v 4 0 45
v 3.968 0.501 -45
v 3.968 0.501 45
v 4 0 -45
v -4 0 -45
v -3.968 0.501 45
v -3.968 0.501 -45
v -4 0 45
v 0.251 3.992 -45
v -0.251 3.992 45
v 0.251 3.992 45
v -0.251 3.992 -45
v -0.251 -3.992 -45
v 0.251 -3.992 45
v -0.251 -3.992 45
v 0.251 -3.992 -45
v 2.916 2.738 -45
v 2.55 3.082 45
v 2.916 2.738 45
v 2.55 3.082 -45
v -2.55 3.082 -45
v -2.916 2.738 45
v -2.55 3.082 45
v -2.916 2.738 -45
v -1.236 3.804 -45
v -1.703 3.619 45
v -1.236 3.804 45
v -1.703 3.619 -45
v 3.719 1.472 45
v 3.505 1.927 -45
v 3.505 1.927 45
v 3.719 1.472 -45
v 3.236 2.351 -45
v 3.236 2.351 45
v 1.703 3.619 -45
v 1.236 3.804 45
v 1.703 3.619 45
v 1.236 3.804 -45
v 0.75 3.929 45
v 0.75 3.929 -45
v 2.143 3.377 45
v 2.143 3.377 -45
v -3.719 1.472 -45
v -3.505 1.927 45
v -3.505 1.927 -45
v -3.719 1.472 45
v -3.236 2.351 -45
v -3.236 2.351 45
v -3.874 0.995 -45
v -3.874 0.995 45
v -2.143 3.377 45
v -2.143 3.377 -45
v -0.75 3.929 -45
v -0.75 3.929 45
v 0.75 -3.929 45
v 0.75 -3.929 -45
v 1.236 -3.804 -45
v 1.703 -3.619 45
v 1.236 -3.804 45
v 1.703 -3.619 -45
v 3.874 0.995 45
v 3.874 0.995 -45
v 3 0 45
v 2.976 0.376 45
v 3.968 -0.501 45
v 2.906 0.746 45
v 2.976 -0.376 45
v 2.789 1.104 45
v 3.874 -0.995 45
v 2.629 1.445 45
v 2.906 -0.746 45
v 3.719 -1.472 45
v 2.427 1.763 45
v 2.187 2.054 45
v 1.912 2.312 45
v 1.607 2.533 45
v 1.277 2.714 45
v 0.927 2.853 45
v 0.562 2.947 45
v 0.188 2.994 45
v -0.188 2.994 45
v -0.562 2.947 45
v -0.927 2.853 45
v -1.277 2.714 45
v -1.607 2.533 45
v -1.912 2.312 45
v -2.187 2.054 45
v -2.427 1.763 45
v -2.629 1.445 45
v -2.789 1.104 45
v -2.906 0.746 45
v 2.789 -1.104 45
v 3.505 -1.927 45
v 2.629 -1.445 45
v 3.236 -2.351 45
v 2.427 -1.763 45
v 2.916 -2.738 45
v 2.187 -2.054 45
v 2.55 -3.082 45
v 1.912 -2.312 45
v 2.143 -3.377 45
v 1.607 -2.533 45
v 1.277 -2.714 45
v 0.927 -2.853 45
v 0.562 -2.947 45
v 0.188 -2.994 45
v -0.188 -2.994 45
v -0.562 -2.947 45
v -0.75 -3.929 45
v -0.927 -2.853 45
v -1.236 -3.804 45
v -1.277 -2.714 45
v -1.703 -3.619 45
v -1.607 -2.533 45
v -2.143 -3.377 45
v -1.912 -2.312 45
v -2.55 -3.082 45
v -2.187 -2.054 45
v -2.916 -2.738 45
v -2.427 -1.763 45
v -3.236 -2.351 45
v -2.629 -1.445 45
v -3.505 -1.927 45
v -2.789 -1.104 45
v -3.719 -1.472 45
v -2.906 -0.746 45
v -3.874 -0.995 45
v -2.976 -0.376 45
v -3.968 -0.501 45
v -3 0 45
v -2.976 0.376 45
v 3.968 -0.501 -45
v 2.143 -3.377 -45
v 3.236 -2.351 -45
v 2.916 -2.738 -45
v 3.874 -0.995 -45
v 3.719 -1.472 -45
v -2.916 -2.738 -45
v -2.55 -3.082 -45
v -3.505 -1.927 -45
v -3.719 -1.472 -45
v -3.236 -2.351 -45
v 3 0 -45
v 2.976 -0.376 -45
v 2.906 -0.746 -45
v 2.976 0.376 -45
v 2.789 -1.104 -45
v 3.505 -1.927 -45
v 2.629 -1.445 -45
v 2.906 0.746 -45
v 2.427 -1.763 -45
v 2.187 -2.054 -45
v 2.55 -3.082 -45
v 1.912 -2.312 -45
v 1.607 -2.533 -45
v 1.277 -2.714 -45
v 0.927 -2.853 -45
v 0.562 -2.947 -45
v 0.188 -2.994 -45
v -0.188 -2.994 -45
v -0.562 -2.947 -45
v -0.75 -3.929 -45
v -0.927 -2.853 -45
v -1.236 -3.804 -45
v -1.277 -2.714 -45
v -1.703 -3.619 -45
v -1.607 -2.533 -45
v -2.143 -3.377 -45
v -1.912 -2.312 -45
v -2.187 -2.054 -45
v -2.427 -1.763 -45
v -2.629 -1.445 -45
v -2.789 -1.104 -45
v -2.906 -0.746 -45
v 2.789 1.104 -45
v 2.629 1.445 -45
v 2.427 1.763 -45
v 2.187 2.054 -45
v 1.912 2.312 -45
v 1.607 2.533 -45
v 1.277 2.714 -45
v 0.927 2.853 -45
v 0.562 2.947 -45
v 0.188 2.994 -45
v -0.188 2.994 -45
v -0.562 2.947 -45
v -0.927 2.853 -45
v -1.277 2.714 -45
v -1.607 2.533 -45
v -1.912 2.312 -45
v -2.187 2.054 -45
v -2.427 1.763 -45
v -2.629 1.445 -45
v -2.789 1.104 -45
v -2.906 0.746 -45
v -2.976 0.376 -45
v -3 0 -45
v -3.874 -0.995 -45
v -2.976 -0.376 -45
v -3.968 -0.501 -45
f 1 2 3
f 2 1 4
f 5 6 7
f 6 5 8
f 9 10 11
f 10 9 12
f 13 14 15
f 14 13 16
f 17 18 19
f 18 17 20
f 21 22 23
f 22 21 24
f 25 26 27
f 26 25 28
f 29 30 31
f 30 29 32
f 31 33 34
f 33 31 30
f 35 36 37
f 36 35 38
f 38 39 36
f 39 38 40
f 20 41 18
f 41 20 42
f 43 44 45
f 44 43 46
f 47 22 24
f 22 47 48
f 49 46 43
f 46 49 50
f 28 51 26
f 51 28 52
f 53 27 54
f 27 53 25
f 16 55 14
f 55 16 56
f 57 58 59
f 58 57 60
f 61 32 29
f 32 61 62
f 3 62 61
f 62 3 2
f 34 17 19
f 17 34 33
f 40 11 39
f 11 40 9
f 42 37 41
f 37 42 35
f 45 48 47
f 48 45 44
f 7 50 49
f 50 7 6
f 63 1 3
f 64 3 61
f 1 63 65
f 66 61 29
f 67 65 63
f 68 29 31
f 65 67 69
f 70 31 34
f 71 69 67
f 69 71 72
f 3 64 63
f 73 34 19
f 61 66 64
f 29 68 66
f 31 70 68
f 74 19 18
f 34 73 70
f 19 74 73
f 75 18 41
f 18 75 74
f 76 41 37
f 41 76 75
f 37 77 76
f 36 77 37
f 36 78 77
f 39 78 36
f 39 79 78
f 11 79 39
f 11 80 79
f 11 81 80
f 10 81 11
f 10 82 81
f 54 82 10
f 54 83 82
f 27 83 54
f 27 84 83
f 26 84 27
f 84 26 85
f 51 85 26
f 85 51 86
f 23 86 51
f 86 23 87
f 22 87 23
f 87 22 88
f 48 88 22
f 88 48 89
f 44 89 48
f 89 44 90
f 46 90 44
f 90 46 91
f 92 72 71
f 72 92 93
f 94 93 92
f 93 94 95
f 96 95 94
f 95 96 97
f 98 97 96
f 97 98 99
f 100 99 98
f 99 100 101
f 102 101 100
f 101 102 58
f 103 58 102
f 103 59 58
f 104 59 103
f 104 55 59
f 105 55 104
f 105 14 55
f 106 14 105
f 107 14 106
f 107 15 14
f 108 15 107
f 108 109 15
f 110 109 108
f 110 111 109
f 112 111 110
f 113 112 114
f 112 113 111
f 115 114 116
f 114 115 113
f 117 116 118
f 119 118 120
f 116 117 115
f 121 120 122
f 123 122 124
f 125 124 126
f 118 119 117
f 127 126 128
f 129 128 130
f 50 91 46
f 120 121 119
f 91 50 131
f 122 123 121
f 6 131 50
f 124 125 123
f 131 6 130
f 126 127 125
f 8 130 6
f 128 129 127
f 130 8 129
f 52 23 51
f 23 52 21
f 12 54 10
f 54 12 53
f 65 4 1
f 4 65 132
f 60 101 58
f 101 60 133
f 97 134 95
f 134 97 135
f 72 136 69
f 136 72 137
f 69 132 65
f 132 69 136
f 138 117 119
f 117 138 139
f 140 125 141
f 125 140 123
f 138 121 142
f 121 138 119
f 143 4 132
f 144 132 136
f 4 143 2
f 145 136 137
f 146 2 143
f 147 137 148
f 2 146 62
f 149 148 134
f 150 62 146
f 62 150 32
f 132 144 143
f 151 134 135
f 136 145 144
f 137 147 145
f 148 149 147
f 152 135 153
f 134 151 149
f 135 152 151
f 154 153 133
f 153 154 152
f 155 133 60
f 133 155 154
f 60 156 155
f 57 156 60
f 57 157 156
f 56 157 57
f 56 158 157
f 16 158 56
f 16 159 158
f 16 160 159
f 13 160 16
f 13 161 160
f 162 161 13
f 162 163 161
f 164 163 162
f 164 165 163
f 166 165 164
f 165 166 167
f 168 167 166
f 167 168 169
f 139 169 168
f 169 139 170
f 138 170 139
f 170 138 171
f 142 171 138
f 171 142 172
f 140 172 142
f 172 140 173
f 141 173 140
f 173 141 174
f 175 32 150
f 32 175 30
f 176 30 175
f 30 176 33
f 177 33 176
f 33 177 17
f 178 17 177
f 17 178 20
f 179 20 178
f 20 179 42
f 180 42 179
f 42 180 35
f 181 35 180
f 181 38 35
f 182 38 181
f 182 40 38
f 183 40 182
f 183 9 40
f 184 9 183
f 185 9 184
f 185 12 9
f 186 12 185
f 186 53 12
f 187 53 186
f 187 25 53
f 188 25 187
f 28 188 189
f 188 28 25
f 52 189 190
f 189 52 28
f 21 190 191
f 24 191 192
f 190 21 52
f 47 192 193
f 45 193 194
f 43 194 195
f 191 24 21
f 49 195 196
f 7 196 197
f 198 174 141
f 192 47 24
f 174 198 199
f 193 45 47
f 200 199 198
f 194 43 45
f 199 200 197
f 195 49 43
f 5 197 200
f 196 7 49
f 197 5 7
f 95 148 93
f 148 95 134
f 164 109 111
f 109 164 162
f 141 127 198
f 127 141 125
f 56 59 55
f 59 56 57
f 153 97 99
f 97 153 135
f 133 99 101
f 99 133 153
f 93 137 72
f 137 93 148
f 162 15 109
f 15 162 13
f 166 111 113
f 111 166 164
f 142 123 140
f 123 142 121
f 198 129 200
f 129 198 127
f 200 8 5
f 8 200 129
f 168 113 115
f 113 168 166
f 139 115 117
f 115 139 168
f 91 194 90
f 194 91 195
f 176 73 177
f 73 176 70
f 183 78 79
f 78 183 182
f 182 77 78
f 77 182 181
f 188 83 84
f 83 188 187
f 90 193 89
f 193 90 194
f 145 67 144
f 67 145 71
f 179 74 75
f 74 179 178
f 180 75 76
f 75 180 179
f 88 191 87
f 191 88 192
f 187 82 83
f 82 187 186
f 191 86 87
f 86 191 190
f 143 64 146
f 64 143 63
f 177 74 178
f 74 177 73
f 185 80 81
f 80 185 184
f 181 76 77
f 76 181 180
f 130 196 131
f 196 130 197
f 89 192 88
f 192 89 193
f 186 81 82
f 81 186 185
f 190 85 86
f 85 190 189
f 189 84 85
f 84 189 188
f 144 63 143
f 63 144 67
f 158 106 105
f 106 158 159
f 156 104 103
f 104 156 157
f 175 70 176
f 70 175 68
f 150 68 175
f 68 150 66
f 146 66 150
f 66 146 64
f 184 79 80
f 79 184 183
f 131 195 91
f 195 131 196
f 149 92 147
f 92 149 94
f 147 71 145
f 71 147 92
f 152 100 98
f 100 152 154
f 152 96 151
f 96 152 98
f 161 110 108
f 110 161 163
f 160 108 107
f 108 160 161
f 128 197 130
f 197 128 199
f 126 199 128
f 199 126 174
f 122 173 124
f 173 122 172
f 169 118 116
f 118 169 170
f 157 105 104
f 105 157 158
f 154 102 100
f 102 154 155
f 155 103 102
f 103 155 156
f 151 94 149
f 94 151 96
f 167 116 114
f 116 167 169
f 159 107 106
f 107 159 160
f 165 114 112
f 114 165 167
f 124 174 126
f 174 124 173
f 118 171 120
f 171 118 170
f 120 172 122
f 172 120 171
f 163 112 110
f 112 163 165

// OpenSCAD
$fn = 50;


difference() {
	union() {
		translate(v = [0, 0, -45.0000000000]) {
			cylinder(h = 90, r = 4.0000000000);
		}
	}
	union() {
		translate(v = [0, 0, -100.0000000000]) {
			cylinder(h = 200, r = 3);
		}
	}
}
